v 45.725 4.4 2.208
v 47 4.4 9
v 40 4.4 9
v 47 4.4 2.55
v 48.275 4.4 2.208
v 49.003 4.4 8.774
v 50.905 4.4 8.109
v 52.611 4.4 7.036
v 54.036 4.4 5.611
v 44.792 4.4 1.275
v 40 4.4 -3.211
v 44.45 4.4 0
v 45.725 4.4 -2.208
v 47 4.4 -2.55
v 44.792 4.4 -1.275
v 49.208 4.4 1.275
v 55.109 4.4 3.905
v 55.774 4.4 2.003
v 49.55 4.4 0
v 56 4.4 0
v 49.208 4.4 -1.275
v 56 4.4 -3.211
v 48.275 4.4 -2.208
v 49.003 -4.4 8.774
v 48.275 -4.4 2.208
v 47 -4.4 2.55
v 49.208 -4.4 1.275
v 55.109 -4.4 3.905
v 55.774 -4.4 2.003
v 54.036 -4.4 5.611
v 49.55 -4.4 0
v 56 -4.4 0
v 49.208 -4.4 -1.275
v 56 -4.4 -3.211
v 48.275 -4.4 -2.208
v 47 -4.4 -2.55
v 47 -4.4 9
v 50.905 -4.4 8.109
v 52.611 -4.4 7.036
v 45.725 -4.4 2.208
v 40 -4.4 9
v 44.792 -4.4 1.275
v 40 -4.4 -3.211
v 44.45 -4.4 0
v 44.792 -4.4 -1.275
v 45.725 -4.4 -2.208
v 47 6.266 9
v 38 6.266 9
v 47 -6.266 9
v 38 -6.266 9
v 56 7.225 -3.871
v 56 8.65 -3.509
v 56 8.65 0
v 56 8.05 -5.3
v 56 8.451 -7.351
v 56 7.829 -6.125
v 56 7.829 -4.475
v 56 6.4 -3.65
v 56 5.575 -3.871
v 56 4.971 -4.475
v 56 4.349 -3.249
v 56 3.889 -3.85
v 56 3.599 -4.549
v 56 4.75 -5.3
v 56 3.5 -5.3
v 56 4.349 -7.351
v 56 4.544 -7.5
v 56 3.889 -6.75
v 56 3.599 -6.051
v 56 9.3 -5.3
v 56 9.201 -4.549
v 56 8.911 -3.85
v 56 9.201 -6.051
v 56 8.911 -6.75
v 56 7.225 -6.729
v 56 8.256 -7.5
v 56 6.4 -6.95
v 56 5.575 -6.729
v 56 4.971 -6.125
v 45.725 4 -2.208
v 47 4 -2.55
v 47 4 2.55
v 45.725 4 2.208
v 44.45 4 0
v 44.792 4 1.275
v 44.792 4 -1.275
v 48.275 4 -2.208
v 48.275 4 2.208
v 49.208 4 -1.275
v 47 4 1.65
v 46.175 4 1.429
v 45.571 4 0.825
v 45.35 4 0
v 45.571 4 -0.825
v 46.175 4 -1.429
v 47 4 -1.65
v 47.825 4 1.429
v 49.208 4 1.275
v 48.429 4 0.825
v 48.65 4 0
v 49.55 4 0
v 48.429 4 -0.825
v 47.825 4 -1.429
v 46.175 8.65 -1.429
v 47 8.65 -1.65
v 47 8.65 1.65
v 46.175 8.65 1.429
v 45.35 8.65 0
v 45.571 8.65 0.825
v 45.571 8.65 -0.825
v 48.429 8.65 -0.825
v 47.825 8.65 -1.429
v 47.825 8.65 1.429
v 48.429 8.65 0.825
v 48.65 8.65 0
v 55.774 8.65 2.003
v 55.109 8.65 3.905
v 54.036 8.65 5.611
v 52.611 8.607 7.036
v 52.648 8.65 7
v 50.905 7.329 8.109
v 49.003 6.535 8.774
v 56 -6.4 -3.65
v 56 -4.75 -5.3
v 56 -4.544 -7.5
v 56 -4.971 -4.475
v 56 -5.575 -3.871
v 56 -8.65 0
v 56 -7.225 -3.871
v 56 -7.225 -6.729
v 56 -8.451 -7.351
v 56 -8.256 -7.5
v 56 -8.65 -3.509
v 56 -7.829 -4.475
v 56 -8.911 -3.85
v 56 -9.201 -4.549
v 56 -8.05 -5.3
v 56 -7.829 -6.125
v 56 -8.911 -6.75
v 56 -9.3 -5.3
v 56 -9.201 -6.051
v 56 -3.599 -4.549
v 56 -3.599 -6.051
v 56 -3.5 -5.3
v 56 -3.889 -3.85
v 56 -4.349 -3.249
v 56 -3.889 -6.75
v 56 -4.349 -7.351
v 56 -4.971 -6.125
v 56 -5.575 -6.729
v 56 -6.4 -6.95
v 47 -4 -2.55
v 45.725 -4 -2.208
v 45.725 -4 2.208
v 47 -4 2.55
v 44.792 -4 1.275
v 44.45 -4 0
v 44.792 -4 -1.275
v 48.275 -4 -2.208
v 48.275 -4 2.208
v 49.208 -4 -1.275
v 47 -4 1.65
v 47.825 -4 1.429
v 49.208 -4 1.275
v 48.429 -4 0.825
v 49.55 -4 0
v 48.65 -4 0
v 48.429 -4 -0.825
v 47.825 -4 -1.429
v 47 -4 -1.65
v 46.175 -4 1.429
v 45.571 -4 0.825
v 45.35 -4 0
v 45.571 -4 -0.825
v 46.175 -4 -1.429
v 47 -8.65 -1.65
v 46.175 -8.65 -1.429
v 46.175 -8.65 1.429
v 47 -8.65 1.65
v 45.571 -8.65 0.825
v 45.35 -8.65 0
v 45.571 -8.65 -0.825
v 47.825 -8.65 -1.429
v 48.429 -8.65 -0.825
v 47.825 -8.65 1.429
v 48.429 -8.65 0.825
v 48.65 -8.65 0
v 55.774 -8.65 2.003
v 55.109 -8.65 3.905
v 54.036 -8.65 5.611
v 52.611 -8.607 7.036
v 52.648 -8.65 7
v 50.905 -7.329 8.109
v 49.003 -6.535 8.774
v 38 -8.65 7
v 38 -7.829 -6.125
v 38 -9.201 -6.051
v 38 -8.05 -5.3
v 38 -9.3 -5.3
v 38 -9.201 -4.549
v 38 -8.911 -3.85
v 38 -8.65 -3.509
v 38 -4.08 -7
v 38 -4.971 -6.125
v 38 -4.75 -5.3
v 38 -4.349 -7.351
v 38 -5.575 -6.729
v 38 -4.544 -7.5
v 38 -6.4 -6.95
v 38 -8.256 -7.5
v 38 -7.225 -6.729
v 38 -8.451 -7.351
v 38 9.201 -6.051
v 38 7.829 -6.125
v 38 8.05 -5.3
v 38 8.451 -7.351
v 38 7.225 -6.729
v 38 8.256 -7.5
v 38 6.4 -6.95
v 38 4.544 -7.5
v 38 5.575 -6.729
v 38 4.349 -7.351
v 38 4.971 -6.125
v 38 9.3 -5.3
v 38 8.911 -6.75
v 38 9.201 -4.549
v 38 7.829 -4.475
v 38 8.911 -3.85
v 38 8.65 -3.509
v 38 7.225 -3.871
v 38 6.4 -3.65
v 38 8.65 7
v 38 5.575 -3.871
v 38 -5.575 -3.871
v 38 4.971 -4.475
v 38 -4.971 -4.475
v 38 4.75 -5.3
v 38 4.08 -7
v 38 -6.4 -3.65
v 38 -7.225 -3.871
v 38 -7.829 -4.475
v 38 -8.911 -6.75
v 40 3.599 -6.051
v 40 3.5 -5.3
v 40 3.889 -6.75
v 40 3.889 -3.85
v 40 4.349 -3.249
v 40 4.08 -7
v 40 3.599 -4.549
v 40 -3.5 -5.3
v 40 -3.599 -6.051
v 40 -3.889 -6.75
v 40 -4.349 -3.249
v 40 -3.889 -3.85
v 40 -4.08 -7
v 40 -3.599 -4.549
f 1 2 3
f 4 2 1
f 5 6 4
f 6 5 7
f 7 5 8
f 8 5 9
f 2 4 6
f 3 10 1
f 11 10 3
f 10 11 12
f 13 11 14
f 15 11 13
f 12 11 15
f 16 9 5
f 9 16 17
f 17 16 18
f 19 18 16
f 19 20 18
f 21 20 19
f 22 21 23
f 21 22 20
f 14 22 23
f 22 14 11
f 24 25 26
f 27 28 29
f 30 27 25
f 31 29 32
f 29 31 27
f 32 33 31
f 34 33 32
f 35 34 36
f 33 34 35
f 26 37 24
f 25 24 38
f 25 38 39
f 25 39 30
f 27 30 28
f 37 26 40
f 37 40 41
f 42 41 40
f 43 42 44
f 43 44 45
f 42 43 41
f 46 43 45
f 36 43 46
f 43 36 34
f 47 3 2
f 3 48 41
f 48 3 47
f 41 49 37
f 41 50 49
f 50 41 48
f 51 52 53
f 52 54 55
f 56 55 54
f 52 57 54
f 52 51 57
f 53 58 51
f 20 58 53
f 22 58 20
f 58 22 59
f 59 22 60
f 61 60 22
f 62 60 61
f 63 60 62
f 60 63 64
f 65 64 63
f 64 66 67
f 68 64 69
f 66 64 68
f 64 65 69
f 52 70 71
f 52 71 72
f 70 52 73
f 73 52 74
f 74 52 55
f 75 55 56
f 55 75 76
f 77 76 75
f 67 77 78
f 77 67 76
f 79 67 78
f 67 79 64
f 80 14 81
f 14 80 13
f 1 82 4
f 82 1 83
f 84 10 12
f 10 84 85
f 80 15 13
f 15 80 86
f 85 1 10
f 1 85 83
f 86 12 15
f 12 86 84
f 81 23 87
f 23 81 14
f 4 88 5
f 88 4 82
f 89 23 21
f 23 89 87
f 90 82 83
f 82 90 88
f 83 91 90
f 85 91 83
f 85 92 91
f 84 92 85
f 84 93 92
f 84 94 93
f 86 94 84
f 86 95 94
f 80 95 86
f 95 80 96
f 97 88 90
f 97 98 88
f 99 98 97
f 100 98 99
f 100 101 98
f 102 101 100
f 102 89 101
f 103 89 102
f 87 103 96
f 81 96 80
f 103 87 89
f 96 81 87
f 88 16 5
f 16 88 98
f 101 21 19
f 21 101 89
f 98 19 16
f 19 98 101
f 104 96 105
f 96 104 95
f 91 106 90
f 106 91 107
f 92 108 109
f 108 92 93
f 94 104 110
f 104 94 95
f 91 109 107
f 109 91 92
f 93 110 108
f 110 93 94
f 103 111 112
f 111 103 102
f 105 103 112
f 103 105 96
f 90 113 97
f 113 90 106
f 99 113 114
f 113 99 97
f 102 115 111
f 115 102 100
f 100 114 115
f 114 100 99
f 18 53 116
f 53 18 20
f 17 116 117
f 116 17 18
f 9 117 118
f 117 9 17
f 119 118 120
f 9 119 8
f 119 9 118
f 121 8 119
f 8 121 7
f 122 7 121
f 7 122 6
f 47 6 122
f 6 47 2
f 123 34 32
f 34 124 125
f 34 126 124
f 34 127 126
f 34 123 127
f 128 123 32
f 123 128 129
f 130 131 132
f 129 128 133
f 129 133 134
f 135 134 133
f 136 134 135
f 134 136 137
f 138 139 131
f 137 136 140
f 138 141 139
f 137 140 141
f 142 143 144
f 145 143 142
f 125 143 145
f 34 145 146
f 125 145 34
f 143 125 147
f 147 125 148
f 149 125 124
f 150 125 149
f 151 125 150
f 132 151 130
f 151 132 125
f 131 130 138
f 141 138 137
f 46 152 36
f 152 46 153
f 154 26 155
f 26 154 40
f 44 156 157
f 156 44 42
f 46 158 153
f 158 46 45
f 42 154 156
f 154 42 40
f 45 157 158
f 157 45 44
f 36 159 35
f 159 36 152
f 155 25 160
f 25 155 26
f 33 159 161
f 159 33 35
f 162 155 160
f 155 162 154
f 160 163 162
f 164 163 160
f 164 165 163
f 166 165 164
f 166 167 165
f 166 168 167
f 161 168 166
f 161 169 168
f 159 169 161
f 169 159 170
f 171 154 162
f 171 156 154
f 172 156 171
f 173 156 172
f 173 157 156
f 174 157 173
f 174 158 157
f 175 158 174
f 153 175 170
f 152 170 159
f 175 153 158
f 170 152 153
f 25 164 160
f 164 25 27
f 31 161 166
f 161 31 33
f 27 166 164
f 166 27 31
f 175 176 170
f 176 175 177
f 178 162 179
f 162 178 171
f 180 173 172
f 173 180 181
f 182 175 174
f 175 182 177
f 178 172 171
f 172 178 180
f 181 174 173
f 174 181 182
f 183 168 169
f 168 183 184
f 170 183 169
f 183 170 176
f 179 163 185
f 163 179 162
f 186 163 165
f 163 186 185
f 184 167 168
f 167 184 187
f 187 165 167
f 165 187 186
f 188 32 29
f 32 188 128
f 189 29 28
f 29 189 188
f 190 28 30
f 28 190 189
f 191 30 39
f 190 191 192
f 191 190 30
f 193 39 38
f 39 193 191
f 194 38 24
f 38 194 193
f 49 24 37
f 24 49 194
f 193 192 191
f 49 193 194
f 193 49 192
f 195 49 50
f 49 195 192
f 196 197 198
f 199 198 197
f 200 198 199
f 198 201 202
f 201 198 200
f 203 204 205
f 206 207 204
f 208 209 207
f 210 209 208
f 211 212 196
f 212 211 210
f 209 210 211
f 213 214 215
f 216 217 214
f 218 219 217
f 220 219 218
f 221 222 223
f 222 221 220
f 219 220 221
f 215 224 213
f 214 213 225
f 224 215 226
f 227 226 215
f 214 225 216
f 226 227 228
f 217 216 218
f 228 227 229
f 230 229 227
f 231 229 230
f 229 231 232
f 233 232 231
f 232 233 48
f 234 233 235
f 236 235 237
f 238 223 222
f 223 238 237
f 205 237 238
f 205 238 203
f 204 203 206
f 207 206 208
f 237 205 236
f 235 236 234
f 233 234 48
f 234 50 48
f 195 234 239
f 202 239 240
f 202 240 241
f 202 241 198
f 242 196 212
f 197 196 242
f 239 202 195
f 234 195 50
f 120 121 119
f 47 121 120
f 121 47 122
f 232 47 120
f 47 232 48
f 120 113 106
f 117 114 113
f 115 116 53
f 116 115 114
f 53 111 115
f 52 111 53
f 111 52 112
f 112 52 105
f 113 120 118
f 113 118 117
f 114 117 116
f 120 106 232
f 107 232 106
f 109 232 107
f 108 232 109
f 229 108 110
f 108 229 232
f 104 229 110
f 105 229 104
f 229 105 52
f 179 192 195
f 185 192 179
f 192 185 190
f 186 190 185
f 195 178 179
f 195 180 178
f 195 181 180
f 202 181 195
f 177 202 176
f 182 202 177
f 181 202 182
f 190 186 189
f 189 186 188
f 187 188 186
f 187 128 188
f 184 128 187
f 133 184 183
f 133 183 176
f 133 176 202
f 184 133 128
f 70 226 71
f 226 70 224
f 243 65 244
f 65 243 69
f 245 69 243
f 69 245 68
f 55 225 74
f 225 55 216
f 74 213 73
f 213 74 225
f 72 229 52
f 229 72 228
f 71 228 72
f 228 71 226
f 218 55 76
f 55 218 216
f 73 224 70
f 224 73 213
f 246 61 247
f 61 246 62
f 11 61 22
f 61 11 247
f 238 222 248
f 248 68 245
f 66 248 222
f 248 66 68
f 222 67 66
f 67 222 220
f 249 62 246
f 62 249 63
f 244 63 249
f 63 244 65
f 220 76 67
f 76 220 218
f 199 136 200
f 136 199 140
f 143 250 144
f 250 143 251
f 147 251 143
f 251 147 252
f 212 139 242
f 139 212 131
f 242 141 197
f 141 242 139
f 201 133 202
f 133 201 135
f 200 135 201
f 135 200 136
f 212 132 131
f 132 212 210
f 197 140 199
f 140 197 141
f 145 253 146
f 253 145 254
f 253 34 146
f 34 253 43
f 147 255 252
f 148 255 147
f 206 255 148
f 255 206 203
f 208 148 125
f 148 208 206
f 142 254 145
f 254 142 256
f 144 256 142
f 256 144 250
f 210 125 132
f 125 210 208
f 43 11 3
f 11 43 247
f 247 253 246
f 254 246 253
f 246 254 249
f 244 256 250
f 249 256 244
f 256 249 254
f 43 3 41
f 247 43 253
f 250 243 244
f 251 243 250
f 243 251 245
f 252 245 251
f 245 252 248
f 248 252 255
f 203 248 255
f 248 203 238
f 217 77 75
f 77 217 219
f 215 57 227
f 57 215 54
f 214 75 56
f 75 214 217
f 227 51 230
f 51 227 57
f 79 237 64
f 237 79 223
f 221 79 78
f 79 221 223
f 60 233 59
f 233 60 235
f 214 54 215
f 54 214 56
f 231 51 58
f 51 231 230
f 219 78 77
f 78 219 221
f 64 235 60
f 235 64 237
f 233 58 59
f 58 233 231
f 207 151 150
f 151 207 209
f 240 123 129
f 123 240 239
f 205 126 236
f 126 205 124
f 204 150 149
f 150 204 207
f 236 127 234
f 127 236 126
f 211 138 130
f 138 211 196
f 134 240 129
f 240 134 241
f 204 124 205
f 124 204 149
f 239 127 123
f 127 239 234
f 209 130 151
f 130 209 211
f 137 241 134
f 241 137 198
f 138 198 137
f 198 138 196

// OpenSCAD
// file: lib/parameters.scad
// Parameters shared between modules
Base_th = 2;
Beam_width = 15;
Wiggle = 0.25;
Fat_beam_width = Beam_width + Wiggle;
Beam_length = 400;
Wall_th = 2.5;
Min_beam_width = 12.5;
Max_beam_width = 17.5;
Zip_th = 2;
Zip_h = Zip_th + Max_beam_width - Min_beam_width;
Zip_w = 5.0;
Nema17_cube_width          = 42.43;
Nema17_screw_hole_width    = 43.74; // Opposite corner screws
Nema17_ring_diameter       = 22;
Nema17_cube_height         = 39.36;
Nema17_shaft_height        = 63.65;
Nema17_ring_height         = 2;
Nema17_shaft_radius        = 5/2;

Nema23_cube_width          = 56.4;
Nema23_cube_height         = 54.5;
Nema23_shaft_height        = 100;
Nema23_screw_hole_width    = 66.31; // Opposite corner screws
b608_outer_dia = 22.2; // Should probably be 22.1 for a snug fit with finer printers
b608_width = 7.05;
b608_bore_r = 4;
b608_vgroove_big_r = b608_outer_dia/2 + 2.5;
b608_vgroove_small_r = b608_outer_dia/2 + 0.5;
b608_ugroove_big_r = b608_vgroove_big_r;
b608_ugroove_small_r = b608_vgroove_small_r;
Gap_between_sandwich_and_plate = 1.5 + Base_th; // 1.5 mm for wiggle
Motor_bracket_flerp_r = 6;
Motor_bracket_flerp = 14;
Motor_bracket_cw = Nema17_cube_width + 6;
Motor_bracket_att_ang = 50;
Mounting_screw_d = 3.5;
Mounting_screw_head_d = 14;
Spool_outer_wall_th = 4;

// Corner clamp parameters
Cc_l1 = (Fat_beam_width+2*Wall_th)*2*sqrt(3);
Cc_rad_b = 4;
Cc_action_point_from_mid = Cc_l1/sqrt(3)-2*Cc_rad_b-7;
Cc_plastic_length = sqrt(Cc_action_point_from_mid*Cc_action_point_from_mid
                       - (Cc_action_point_from_mid/2)*(Cc_action_point_from_mid/2));
Eyelet_extra_dist = 0.75;
Eyelet_diameter = 4.30;
Eyelet_flange_diameter = 5.93;

// The distance between the two action points on the mover
Sidelength = Beam_length + 2*Cc_plastic_length;

/////// Gear parameters ////////////
Circular_pitch = 262;
Motor_teeth = 10;
Gear_height = 21.4-3;
Motor_pitch                      = (Motor_teeth*Circular_pitch/360);
Motor_pitch_diametrial           = Motor_teeth/(2*Motor_pitch);
Motor_outer_radius               = Motor_pitch + 1/Motor_pitch_diametrial;
Spool_teeth = 100;
Spool_r = 75;
Spool_height = 8;
Spool_pitch                      = (Spool_teeth*Circular_pitch/360);
Spool_pitch_diametrial           = Spool_teeth/(2*Spool_pitch);
Spool_outer_radius               = Spool_pitch + 1/Spool_pitch_diametrial;
Sep_disc_radius = (161.83+1)/2; // Made to match 255 teeth gt2 pulley + 1
Motor_bracket_depth = Gear_height+1+7+Nema17_ring_height+1+Gap_between_sandwich_and_plate;
Spool_core_flerp0 = 16+3;

/////// Lineroller parameters ////////////
b623_width  = 4;
b623_bore_r = 3/2;
b623_big_ugroove_big_r = (12+3)/2;
b623_big_ugroove_small_r = (10+3)/2;
b623_outer_dia = 10;
b623_ugroove_room_to_grow_r = 1.1;
b608_ugroove_room_to_grow_r = 1.1;
b623_flange_dia = 11.5;
b623_flange_room_to_grow_r = 0.5;

Depth_of_roller_base = 18;
Roller_flerp = 6;
Roller_l = 42;
Roller_fl = (Roller_l - Depth_of_roller_base)/2;

Line_roller_wall_th = 5;

Line_roller_ABCD_winch_h =  Gap_between_sandwich_and_plate
                           + Sep_disc_radius
                           - Spool_r
                           + Depth_of_roller_base/2
                           + b608_vgroove_small_r;

Ptfe_r = 2.1;
Roller_base_r = 8;
Screw_h = 2;
Screw_head_h = 2;
M3_screw_head_d = 5.8;
Spool_center_bearing_wall_th = 5;
Corner_clamp_bearings_center_to_center = max(45, (b623_big_ugroove_big_r + b623_ugroove_room_to_grow_r)*2 + 5);

//// Lineroller anchor parameters /////

Front_bearing_x = -5 - 5;
Move_tower = -12.2;
Lower_bearing_z = 13;
Higher_bearing_z = Lower_bearing_z + Corner_clamp_bearings_center_to_center;

//// Cable Clamp parameters /////
Bit_width = 12;
Cable_r=3.5;

// Belt drive parameters
GT2_belt_width = 6.5;
GT2_gear_height = GT2_belt_width + 2;
GT2_motor_gear_height = 16;
GT2_motor_gear_outer_dia = 16;
GT2_spool_gear_outer_dia = 161.82; // Echoed from GT2_spool_gear.scad
GT2_spool_gear_teeth = 255;
GT2_motor_gear_teeth = 20;
Torx_depth = GT2_gear_height/2;
Belt_roller_h = 56;
Belt_thickness = 1.4;

Belt_roller_space_between_walls = 2*b623_width + 0.8;
Belt_roller_wall_th = (Depth_of_roller_base - Belt_roller_space_between_walls)/2+2;
Belt_roller_top_adj_screw_x = Depth_of_roller_base/2-3.7;
Belt_roller_top_adj_screw_y = Belt_roller_space_between_walls/2+2;
Belt_roller_containing_cube_ywidth = Belt_roller_space_between_walls+8.5;
Belt_roller_containing_cube_xwidth = 14;
Belt_roller_insert_h = 18;

Sandwich_ABCD_width = 2*(1+Spool_height) + GT2_gear_height;
Sandwich_I_width = 5*(1+Spool_height) + GT2_gear_height;
Spool_core_halve_width = 14.3;
Spool_core_impression_in_spool_cover = 0;
Spool_cover_bottom_th = 1.5;
Spool_cover_shoulder = 2;
Spool_core_cover_adj = Spool_cover_shoulder+Spool_cover_bottom_th-Spool_core_impression_in_spool_cover;
Spool_core_tot_length = 136.458;
Spool_cover_outer_r = Sep_disc_radius + 2;
Gap_between_sep_disc_and_spool_cover = 0.55;

Smooth_rod_length_ABCD = Sandwich_ABCD_width + 2*(Spool_core_halve_width-Spool_core_impression_in_spool_cover + Spool_cover_bottom_th + Spool_cover_shoulder);
Smooth_rod_length_I = Sandwich_I_width + 2*(Spool_core_halve_width-Spool_core_impression_in_spool_cover + Spool_cover_bottom_th + Spool_cover_shoulder);
echo("Smooth_rod_length_ABCD", Smooth_rod_length_ABCD);
echo("Smooth_rod_length_I", Smooth_rod_length_I);

Spool_cover_tot_height = Spool_cover_bottom_th+Spool_cover_shoulder+1+Spool_height;
Spool_cover_I_left_tot_height = Spool_cover_shoulder+Spool_cover_bottom_th+2*(Spool_height+1);
Spool_cover_I_right_tot_height = Spool_cover_shoulder+Spool_cover_bottom_th+3*(Spool_height+1);

spd = Spool_height+GT2_gear_height;
// Horizontal_deflector_cube_y_size must be exact this number
// because we want to deflect AB-lines
// 60 degrees on the ceiling unit, and we want to put two
// deflectors in a row and get a distance between bearings
// that maintain the distance d when deflecting 60 degrees
Horizontal_deflector_cube_y_size = (2/sqrt(3))*spd;

Belt_roller_bearing_xpos = Sep_disc_radius + b623_outer_dia/2+Belt_thickness;



Pen_holder_w = 55;
Pen_holder_rail_w = 36;
Pen_holder_bottom_th = 7;

u_width = 7;
Stick_extra = 5;
Stick_length = b623_big_ugroove_big_r*2 + 7*2 + 1*2 + Stick_extra;
Stick_d = 12.5;

Ram_1000_3dpotter_tube_inner_d = 70;
Ram_1000_3dpotter_tube_outer_d = Ram_1000_3dpotter_tube_inner_d + 2*3.3;
Ram_1000_3dpotter_top_square_width = 31.7;

// 6 mm nozzle
// Wasp_xl30_funnel_d1 = 7.2;
// Wasp_xl30_funnel_d2 = 26.3;
// Wasp_xl30_funnel_h = 18.59;

// 4 mm nozzle
Wasp_xl30_funnel_d1 = 5.2;
Wasp_xl30_funnel_d2 = 26.0;
Wasp_xl30_funnel_h = 17.7;



// Colors
Color0 = "sandybrown";
Color0_alpha = 0.55;
Color1 = [0.81,0.73,0.05];
Color1_alpha = 1.0;
Color2 = [0.99,0.99,0.99];
Color2_alpha = 0.8;
Spool_cover_alpha = 0.5;
Color_carbon = [0.2,0.2,0.2];
//Color_line = [0.9,0.35,0.35];
Color_line=[1.0,0.2,0.2];
Color_motor=[0.5,0.4,0.9];
// main file
include <lib/parameters.scad>
use <lib/util.scad>


//translate([0,0,-8])
rotate([0,90,0])
belt_roller_insert(with_bearings = false);
module belt_roller_insert(with_bearings){
  if(with_bearings){
    translate([0,0,Belt_roller_h-Depth_of_roller_base/2]){
      rotate([90,0,0])
        b623();
      rotate([-90,0,0])
        b623();
    }
  }

  difference(){
    union(){
      intersection(){
        roller_wall_pair(Belt_roller_space_between_walls, Belt_roller_wall_th, Belt_roller_h);
        union(){
          belt_roller_containing_cube();
          for(k=[0,1])
            mirror([0,k,0]){
              translate([-7, -Belt_roller_containing_cube_ywidth/2, Belt_roller_h - Belt_roller_insert_h])
                rotate([0,0,40])
                  cube([4, 6, Belt_roller_h]);
            }

        }
      }
      translate([-Depth_of_roller_base/2, -Belt_roller_space_between_walls/2, Belt_roller_h - Belt_roller_insert_h])
        cube([Depth_of_roller_base-2, Belt_roller_space_between_walls, 2]);
      for(k=[0,1]) {
        mirror([0,k,0]) {
          intersection(){
            translate([Belt_roller_top_adj_screw_x, Belt_roller_top_adj_screw_y,Belt_roller_h-Belt_roller_insert_h])
              cylinder(d=M3_screw_head_d, h=Belt_roller_insert_h, $fn=24);
            translate([-7, -(Belt_roller_space_between_walls+10)/2, Belt_roller_h - Belt_roller_insert_h])
              cube([14.5, Belt_roller_space_between_walls+10, Belt_roller_h]);
          }
        }
      }
    }

    translate([Belt_roller_top_adj_screw_x,Belt_roller_top_adj_screw_y,5])
      M3_screw(h=Belt_roller_h);
    translate([Belt_roller_top_adj_screw_x,-(Belt_roller_top_adj_screw_y),5])
      M3_screw(h=Belt_roller_h);
  }
}
